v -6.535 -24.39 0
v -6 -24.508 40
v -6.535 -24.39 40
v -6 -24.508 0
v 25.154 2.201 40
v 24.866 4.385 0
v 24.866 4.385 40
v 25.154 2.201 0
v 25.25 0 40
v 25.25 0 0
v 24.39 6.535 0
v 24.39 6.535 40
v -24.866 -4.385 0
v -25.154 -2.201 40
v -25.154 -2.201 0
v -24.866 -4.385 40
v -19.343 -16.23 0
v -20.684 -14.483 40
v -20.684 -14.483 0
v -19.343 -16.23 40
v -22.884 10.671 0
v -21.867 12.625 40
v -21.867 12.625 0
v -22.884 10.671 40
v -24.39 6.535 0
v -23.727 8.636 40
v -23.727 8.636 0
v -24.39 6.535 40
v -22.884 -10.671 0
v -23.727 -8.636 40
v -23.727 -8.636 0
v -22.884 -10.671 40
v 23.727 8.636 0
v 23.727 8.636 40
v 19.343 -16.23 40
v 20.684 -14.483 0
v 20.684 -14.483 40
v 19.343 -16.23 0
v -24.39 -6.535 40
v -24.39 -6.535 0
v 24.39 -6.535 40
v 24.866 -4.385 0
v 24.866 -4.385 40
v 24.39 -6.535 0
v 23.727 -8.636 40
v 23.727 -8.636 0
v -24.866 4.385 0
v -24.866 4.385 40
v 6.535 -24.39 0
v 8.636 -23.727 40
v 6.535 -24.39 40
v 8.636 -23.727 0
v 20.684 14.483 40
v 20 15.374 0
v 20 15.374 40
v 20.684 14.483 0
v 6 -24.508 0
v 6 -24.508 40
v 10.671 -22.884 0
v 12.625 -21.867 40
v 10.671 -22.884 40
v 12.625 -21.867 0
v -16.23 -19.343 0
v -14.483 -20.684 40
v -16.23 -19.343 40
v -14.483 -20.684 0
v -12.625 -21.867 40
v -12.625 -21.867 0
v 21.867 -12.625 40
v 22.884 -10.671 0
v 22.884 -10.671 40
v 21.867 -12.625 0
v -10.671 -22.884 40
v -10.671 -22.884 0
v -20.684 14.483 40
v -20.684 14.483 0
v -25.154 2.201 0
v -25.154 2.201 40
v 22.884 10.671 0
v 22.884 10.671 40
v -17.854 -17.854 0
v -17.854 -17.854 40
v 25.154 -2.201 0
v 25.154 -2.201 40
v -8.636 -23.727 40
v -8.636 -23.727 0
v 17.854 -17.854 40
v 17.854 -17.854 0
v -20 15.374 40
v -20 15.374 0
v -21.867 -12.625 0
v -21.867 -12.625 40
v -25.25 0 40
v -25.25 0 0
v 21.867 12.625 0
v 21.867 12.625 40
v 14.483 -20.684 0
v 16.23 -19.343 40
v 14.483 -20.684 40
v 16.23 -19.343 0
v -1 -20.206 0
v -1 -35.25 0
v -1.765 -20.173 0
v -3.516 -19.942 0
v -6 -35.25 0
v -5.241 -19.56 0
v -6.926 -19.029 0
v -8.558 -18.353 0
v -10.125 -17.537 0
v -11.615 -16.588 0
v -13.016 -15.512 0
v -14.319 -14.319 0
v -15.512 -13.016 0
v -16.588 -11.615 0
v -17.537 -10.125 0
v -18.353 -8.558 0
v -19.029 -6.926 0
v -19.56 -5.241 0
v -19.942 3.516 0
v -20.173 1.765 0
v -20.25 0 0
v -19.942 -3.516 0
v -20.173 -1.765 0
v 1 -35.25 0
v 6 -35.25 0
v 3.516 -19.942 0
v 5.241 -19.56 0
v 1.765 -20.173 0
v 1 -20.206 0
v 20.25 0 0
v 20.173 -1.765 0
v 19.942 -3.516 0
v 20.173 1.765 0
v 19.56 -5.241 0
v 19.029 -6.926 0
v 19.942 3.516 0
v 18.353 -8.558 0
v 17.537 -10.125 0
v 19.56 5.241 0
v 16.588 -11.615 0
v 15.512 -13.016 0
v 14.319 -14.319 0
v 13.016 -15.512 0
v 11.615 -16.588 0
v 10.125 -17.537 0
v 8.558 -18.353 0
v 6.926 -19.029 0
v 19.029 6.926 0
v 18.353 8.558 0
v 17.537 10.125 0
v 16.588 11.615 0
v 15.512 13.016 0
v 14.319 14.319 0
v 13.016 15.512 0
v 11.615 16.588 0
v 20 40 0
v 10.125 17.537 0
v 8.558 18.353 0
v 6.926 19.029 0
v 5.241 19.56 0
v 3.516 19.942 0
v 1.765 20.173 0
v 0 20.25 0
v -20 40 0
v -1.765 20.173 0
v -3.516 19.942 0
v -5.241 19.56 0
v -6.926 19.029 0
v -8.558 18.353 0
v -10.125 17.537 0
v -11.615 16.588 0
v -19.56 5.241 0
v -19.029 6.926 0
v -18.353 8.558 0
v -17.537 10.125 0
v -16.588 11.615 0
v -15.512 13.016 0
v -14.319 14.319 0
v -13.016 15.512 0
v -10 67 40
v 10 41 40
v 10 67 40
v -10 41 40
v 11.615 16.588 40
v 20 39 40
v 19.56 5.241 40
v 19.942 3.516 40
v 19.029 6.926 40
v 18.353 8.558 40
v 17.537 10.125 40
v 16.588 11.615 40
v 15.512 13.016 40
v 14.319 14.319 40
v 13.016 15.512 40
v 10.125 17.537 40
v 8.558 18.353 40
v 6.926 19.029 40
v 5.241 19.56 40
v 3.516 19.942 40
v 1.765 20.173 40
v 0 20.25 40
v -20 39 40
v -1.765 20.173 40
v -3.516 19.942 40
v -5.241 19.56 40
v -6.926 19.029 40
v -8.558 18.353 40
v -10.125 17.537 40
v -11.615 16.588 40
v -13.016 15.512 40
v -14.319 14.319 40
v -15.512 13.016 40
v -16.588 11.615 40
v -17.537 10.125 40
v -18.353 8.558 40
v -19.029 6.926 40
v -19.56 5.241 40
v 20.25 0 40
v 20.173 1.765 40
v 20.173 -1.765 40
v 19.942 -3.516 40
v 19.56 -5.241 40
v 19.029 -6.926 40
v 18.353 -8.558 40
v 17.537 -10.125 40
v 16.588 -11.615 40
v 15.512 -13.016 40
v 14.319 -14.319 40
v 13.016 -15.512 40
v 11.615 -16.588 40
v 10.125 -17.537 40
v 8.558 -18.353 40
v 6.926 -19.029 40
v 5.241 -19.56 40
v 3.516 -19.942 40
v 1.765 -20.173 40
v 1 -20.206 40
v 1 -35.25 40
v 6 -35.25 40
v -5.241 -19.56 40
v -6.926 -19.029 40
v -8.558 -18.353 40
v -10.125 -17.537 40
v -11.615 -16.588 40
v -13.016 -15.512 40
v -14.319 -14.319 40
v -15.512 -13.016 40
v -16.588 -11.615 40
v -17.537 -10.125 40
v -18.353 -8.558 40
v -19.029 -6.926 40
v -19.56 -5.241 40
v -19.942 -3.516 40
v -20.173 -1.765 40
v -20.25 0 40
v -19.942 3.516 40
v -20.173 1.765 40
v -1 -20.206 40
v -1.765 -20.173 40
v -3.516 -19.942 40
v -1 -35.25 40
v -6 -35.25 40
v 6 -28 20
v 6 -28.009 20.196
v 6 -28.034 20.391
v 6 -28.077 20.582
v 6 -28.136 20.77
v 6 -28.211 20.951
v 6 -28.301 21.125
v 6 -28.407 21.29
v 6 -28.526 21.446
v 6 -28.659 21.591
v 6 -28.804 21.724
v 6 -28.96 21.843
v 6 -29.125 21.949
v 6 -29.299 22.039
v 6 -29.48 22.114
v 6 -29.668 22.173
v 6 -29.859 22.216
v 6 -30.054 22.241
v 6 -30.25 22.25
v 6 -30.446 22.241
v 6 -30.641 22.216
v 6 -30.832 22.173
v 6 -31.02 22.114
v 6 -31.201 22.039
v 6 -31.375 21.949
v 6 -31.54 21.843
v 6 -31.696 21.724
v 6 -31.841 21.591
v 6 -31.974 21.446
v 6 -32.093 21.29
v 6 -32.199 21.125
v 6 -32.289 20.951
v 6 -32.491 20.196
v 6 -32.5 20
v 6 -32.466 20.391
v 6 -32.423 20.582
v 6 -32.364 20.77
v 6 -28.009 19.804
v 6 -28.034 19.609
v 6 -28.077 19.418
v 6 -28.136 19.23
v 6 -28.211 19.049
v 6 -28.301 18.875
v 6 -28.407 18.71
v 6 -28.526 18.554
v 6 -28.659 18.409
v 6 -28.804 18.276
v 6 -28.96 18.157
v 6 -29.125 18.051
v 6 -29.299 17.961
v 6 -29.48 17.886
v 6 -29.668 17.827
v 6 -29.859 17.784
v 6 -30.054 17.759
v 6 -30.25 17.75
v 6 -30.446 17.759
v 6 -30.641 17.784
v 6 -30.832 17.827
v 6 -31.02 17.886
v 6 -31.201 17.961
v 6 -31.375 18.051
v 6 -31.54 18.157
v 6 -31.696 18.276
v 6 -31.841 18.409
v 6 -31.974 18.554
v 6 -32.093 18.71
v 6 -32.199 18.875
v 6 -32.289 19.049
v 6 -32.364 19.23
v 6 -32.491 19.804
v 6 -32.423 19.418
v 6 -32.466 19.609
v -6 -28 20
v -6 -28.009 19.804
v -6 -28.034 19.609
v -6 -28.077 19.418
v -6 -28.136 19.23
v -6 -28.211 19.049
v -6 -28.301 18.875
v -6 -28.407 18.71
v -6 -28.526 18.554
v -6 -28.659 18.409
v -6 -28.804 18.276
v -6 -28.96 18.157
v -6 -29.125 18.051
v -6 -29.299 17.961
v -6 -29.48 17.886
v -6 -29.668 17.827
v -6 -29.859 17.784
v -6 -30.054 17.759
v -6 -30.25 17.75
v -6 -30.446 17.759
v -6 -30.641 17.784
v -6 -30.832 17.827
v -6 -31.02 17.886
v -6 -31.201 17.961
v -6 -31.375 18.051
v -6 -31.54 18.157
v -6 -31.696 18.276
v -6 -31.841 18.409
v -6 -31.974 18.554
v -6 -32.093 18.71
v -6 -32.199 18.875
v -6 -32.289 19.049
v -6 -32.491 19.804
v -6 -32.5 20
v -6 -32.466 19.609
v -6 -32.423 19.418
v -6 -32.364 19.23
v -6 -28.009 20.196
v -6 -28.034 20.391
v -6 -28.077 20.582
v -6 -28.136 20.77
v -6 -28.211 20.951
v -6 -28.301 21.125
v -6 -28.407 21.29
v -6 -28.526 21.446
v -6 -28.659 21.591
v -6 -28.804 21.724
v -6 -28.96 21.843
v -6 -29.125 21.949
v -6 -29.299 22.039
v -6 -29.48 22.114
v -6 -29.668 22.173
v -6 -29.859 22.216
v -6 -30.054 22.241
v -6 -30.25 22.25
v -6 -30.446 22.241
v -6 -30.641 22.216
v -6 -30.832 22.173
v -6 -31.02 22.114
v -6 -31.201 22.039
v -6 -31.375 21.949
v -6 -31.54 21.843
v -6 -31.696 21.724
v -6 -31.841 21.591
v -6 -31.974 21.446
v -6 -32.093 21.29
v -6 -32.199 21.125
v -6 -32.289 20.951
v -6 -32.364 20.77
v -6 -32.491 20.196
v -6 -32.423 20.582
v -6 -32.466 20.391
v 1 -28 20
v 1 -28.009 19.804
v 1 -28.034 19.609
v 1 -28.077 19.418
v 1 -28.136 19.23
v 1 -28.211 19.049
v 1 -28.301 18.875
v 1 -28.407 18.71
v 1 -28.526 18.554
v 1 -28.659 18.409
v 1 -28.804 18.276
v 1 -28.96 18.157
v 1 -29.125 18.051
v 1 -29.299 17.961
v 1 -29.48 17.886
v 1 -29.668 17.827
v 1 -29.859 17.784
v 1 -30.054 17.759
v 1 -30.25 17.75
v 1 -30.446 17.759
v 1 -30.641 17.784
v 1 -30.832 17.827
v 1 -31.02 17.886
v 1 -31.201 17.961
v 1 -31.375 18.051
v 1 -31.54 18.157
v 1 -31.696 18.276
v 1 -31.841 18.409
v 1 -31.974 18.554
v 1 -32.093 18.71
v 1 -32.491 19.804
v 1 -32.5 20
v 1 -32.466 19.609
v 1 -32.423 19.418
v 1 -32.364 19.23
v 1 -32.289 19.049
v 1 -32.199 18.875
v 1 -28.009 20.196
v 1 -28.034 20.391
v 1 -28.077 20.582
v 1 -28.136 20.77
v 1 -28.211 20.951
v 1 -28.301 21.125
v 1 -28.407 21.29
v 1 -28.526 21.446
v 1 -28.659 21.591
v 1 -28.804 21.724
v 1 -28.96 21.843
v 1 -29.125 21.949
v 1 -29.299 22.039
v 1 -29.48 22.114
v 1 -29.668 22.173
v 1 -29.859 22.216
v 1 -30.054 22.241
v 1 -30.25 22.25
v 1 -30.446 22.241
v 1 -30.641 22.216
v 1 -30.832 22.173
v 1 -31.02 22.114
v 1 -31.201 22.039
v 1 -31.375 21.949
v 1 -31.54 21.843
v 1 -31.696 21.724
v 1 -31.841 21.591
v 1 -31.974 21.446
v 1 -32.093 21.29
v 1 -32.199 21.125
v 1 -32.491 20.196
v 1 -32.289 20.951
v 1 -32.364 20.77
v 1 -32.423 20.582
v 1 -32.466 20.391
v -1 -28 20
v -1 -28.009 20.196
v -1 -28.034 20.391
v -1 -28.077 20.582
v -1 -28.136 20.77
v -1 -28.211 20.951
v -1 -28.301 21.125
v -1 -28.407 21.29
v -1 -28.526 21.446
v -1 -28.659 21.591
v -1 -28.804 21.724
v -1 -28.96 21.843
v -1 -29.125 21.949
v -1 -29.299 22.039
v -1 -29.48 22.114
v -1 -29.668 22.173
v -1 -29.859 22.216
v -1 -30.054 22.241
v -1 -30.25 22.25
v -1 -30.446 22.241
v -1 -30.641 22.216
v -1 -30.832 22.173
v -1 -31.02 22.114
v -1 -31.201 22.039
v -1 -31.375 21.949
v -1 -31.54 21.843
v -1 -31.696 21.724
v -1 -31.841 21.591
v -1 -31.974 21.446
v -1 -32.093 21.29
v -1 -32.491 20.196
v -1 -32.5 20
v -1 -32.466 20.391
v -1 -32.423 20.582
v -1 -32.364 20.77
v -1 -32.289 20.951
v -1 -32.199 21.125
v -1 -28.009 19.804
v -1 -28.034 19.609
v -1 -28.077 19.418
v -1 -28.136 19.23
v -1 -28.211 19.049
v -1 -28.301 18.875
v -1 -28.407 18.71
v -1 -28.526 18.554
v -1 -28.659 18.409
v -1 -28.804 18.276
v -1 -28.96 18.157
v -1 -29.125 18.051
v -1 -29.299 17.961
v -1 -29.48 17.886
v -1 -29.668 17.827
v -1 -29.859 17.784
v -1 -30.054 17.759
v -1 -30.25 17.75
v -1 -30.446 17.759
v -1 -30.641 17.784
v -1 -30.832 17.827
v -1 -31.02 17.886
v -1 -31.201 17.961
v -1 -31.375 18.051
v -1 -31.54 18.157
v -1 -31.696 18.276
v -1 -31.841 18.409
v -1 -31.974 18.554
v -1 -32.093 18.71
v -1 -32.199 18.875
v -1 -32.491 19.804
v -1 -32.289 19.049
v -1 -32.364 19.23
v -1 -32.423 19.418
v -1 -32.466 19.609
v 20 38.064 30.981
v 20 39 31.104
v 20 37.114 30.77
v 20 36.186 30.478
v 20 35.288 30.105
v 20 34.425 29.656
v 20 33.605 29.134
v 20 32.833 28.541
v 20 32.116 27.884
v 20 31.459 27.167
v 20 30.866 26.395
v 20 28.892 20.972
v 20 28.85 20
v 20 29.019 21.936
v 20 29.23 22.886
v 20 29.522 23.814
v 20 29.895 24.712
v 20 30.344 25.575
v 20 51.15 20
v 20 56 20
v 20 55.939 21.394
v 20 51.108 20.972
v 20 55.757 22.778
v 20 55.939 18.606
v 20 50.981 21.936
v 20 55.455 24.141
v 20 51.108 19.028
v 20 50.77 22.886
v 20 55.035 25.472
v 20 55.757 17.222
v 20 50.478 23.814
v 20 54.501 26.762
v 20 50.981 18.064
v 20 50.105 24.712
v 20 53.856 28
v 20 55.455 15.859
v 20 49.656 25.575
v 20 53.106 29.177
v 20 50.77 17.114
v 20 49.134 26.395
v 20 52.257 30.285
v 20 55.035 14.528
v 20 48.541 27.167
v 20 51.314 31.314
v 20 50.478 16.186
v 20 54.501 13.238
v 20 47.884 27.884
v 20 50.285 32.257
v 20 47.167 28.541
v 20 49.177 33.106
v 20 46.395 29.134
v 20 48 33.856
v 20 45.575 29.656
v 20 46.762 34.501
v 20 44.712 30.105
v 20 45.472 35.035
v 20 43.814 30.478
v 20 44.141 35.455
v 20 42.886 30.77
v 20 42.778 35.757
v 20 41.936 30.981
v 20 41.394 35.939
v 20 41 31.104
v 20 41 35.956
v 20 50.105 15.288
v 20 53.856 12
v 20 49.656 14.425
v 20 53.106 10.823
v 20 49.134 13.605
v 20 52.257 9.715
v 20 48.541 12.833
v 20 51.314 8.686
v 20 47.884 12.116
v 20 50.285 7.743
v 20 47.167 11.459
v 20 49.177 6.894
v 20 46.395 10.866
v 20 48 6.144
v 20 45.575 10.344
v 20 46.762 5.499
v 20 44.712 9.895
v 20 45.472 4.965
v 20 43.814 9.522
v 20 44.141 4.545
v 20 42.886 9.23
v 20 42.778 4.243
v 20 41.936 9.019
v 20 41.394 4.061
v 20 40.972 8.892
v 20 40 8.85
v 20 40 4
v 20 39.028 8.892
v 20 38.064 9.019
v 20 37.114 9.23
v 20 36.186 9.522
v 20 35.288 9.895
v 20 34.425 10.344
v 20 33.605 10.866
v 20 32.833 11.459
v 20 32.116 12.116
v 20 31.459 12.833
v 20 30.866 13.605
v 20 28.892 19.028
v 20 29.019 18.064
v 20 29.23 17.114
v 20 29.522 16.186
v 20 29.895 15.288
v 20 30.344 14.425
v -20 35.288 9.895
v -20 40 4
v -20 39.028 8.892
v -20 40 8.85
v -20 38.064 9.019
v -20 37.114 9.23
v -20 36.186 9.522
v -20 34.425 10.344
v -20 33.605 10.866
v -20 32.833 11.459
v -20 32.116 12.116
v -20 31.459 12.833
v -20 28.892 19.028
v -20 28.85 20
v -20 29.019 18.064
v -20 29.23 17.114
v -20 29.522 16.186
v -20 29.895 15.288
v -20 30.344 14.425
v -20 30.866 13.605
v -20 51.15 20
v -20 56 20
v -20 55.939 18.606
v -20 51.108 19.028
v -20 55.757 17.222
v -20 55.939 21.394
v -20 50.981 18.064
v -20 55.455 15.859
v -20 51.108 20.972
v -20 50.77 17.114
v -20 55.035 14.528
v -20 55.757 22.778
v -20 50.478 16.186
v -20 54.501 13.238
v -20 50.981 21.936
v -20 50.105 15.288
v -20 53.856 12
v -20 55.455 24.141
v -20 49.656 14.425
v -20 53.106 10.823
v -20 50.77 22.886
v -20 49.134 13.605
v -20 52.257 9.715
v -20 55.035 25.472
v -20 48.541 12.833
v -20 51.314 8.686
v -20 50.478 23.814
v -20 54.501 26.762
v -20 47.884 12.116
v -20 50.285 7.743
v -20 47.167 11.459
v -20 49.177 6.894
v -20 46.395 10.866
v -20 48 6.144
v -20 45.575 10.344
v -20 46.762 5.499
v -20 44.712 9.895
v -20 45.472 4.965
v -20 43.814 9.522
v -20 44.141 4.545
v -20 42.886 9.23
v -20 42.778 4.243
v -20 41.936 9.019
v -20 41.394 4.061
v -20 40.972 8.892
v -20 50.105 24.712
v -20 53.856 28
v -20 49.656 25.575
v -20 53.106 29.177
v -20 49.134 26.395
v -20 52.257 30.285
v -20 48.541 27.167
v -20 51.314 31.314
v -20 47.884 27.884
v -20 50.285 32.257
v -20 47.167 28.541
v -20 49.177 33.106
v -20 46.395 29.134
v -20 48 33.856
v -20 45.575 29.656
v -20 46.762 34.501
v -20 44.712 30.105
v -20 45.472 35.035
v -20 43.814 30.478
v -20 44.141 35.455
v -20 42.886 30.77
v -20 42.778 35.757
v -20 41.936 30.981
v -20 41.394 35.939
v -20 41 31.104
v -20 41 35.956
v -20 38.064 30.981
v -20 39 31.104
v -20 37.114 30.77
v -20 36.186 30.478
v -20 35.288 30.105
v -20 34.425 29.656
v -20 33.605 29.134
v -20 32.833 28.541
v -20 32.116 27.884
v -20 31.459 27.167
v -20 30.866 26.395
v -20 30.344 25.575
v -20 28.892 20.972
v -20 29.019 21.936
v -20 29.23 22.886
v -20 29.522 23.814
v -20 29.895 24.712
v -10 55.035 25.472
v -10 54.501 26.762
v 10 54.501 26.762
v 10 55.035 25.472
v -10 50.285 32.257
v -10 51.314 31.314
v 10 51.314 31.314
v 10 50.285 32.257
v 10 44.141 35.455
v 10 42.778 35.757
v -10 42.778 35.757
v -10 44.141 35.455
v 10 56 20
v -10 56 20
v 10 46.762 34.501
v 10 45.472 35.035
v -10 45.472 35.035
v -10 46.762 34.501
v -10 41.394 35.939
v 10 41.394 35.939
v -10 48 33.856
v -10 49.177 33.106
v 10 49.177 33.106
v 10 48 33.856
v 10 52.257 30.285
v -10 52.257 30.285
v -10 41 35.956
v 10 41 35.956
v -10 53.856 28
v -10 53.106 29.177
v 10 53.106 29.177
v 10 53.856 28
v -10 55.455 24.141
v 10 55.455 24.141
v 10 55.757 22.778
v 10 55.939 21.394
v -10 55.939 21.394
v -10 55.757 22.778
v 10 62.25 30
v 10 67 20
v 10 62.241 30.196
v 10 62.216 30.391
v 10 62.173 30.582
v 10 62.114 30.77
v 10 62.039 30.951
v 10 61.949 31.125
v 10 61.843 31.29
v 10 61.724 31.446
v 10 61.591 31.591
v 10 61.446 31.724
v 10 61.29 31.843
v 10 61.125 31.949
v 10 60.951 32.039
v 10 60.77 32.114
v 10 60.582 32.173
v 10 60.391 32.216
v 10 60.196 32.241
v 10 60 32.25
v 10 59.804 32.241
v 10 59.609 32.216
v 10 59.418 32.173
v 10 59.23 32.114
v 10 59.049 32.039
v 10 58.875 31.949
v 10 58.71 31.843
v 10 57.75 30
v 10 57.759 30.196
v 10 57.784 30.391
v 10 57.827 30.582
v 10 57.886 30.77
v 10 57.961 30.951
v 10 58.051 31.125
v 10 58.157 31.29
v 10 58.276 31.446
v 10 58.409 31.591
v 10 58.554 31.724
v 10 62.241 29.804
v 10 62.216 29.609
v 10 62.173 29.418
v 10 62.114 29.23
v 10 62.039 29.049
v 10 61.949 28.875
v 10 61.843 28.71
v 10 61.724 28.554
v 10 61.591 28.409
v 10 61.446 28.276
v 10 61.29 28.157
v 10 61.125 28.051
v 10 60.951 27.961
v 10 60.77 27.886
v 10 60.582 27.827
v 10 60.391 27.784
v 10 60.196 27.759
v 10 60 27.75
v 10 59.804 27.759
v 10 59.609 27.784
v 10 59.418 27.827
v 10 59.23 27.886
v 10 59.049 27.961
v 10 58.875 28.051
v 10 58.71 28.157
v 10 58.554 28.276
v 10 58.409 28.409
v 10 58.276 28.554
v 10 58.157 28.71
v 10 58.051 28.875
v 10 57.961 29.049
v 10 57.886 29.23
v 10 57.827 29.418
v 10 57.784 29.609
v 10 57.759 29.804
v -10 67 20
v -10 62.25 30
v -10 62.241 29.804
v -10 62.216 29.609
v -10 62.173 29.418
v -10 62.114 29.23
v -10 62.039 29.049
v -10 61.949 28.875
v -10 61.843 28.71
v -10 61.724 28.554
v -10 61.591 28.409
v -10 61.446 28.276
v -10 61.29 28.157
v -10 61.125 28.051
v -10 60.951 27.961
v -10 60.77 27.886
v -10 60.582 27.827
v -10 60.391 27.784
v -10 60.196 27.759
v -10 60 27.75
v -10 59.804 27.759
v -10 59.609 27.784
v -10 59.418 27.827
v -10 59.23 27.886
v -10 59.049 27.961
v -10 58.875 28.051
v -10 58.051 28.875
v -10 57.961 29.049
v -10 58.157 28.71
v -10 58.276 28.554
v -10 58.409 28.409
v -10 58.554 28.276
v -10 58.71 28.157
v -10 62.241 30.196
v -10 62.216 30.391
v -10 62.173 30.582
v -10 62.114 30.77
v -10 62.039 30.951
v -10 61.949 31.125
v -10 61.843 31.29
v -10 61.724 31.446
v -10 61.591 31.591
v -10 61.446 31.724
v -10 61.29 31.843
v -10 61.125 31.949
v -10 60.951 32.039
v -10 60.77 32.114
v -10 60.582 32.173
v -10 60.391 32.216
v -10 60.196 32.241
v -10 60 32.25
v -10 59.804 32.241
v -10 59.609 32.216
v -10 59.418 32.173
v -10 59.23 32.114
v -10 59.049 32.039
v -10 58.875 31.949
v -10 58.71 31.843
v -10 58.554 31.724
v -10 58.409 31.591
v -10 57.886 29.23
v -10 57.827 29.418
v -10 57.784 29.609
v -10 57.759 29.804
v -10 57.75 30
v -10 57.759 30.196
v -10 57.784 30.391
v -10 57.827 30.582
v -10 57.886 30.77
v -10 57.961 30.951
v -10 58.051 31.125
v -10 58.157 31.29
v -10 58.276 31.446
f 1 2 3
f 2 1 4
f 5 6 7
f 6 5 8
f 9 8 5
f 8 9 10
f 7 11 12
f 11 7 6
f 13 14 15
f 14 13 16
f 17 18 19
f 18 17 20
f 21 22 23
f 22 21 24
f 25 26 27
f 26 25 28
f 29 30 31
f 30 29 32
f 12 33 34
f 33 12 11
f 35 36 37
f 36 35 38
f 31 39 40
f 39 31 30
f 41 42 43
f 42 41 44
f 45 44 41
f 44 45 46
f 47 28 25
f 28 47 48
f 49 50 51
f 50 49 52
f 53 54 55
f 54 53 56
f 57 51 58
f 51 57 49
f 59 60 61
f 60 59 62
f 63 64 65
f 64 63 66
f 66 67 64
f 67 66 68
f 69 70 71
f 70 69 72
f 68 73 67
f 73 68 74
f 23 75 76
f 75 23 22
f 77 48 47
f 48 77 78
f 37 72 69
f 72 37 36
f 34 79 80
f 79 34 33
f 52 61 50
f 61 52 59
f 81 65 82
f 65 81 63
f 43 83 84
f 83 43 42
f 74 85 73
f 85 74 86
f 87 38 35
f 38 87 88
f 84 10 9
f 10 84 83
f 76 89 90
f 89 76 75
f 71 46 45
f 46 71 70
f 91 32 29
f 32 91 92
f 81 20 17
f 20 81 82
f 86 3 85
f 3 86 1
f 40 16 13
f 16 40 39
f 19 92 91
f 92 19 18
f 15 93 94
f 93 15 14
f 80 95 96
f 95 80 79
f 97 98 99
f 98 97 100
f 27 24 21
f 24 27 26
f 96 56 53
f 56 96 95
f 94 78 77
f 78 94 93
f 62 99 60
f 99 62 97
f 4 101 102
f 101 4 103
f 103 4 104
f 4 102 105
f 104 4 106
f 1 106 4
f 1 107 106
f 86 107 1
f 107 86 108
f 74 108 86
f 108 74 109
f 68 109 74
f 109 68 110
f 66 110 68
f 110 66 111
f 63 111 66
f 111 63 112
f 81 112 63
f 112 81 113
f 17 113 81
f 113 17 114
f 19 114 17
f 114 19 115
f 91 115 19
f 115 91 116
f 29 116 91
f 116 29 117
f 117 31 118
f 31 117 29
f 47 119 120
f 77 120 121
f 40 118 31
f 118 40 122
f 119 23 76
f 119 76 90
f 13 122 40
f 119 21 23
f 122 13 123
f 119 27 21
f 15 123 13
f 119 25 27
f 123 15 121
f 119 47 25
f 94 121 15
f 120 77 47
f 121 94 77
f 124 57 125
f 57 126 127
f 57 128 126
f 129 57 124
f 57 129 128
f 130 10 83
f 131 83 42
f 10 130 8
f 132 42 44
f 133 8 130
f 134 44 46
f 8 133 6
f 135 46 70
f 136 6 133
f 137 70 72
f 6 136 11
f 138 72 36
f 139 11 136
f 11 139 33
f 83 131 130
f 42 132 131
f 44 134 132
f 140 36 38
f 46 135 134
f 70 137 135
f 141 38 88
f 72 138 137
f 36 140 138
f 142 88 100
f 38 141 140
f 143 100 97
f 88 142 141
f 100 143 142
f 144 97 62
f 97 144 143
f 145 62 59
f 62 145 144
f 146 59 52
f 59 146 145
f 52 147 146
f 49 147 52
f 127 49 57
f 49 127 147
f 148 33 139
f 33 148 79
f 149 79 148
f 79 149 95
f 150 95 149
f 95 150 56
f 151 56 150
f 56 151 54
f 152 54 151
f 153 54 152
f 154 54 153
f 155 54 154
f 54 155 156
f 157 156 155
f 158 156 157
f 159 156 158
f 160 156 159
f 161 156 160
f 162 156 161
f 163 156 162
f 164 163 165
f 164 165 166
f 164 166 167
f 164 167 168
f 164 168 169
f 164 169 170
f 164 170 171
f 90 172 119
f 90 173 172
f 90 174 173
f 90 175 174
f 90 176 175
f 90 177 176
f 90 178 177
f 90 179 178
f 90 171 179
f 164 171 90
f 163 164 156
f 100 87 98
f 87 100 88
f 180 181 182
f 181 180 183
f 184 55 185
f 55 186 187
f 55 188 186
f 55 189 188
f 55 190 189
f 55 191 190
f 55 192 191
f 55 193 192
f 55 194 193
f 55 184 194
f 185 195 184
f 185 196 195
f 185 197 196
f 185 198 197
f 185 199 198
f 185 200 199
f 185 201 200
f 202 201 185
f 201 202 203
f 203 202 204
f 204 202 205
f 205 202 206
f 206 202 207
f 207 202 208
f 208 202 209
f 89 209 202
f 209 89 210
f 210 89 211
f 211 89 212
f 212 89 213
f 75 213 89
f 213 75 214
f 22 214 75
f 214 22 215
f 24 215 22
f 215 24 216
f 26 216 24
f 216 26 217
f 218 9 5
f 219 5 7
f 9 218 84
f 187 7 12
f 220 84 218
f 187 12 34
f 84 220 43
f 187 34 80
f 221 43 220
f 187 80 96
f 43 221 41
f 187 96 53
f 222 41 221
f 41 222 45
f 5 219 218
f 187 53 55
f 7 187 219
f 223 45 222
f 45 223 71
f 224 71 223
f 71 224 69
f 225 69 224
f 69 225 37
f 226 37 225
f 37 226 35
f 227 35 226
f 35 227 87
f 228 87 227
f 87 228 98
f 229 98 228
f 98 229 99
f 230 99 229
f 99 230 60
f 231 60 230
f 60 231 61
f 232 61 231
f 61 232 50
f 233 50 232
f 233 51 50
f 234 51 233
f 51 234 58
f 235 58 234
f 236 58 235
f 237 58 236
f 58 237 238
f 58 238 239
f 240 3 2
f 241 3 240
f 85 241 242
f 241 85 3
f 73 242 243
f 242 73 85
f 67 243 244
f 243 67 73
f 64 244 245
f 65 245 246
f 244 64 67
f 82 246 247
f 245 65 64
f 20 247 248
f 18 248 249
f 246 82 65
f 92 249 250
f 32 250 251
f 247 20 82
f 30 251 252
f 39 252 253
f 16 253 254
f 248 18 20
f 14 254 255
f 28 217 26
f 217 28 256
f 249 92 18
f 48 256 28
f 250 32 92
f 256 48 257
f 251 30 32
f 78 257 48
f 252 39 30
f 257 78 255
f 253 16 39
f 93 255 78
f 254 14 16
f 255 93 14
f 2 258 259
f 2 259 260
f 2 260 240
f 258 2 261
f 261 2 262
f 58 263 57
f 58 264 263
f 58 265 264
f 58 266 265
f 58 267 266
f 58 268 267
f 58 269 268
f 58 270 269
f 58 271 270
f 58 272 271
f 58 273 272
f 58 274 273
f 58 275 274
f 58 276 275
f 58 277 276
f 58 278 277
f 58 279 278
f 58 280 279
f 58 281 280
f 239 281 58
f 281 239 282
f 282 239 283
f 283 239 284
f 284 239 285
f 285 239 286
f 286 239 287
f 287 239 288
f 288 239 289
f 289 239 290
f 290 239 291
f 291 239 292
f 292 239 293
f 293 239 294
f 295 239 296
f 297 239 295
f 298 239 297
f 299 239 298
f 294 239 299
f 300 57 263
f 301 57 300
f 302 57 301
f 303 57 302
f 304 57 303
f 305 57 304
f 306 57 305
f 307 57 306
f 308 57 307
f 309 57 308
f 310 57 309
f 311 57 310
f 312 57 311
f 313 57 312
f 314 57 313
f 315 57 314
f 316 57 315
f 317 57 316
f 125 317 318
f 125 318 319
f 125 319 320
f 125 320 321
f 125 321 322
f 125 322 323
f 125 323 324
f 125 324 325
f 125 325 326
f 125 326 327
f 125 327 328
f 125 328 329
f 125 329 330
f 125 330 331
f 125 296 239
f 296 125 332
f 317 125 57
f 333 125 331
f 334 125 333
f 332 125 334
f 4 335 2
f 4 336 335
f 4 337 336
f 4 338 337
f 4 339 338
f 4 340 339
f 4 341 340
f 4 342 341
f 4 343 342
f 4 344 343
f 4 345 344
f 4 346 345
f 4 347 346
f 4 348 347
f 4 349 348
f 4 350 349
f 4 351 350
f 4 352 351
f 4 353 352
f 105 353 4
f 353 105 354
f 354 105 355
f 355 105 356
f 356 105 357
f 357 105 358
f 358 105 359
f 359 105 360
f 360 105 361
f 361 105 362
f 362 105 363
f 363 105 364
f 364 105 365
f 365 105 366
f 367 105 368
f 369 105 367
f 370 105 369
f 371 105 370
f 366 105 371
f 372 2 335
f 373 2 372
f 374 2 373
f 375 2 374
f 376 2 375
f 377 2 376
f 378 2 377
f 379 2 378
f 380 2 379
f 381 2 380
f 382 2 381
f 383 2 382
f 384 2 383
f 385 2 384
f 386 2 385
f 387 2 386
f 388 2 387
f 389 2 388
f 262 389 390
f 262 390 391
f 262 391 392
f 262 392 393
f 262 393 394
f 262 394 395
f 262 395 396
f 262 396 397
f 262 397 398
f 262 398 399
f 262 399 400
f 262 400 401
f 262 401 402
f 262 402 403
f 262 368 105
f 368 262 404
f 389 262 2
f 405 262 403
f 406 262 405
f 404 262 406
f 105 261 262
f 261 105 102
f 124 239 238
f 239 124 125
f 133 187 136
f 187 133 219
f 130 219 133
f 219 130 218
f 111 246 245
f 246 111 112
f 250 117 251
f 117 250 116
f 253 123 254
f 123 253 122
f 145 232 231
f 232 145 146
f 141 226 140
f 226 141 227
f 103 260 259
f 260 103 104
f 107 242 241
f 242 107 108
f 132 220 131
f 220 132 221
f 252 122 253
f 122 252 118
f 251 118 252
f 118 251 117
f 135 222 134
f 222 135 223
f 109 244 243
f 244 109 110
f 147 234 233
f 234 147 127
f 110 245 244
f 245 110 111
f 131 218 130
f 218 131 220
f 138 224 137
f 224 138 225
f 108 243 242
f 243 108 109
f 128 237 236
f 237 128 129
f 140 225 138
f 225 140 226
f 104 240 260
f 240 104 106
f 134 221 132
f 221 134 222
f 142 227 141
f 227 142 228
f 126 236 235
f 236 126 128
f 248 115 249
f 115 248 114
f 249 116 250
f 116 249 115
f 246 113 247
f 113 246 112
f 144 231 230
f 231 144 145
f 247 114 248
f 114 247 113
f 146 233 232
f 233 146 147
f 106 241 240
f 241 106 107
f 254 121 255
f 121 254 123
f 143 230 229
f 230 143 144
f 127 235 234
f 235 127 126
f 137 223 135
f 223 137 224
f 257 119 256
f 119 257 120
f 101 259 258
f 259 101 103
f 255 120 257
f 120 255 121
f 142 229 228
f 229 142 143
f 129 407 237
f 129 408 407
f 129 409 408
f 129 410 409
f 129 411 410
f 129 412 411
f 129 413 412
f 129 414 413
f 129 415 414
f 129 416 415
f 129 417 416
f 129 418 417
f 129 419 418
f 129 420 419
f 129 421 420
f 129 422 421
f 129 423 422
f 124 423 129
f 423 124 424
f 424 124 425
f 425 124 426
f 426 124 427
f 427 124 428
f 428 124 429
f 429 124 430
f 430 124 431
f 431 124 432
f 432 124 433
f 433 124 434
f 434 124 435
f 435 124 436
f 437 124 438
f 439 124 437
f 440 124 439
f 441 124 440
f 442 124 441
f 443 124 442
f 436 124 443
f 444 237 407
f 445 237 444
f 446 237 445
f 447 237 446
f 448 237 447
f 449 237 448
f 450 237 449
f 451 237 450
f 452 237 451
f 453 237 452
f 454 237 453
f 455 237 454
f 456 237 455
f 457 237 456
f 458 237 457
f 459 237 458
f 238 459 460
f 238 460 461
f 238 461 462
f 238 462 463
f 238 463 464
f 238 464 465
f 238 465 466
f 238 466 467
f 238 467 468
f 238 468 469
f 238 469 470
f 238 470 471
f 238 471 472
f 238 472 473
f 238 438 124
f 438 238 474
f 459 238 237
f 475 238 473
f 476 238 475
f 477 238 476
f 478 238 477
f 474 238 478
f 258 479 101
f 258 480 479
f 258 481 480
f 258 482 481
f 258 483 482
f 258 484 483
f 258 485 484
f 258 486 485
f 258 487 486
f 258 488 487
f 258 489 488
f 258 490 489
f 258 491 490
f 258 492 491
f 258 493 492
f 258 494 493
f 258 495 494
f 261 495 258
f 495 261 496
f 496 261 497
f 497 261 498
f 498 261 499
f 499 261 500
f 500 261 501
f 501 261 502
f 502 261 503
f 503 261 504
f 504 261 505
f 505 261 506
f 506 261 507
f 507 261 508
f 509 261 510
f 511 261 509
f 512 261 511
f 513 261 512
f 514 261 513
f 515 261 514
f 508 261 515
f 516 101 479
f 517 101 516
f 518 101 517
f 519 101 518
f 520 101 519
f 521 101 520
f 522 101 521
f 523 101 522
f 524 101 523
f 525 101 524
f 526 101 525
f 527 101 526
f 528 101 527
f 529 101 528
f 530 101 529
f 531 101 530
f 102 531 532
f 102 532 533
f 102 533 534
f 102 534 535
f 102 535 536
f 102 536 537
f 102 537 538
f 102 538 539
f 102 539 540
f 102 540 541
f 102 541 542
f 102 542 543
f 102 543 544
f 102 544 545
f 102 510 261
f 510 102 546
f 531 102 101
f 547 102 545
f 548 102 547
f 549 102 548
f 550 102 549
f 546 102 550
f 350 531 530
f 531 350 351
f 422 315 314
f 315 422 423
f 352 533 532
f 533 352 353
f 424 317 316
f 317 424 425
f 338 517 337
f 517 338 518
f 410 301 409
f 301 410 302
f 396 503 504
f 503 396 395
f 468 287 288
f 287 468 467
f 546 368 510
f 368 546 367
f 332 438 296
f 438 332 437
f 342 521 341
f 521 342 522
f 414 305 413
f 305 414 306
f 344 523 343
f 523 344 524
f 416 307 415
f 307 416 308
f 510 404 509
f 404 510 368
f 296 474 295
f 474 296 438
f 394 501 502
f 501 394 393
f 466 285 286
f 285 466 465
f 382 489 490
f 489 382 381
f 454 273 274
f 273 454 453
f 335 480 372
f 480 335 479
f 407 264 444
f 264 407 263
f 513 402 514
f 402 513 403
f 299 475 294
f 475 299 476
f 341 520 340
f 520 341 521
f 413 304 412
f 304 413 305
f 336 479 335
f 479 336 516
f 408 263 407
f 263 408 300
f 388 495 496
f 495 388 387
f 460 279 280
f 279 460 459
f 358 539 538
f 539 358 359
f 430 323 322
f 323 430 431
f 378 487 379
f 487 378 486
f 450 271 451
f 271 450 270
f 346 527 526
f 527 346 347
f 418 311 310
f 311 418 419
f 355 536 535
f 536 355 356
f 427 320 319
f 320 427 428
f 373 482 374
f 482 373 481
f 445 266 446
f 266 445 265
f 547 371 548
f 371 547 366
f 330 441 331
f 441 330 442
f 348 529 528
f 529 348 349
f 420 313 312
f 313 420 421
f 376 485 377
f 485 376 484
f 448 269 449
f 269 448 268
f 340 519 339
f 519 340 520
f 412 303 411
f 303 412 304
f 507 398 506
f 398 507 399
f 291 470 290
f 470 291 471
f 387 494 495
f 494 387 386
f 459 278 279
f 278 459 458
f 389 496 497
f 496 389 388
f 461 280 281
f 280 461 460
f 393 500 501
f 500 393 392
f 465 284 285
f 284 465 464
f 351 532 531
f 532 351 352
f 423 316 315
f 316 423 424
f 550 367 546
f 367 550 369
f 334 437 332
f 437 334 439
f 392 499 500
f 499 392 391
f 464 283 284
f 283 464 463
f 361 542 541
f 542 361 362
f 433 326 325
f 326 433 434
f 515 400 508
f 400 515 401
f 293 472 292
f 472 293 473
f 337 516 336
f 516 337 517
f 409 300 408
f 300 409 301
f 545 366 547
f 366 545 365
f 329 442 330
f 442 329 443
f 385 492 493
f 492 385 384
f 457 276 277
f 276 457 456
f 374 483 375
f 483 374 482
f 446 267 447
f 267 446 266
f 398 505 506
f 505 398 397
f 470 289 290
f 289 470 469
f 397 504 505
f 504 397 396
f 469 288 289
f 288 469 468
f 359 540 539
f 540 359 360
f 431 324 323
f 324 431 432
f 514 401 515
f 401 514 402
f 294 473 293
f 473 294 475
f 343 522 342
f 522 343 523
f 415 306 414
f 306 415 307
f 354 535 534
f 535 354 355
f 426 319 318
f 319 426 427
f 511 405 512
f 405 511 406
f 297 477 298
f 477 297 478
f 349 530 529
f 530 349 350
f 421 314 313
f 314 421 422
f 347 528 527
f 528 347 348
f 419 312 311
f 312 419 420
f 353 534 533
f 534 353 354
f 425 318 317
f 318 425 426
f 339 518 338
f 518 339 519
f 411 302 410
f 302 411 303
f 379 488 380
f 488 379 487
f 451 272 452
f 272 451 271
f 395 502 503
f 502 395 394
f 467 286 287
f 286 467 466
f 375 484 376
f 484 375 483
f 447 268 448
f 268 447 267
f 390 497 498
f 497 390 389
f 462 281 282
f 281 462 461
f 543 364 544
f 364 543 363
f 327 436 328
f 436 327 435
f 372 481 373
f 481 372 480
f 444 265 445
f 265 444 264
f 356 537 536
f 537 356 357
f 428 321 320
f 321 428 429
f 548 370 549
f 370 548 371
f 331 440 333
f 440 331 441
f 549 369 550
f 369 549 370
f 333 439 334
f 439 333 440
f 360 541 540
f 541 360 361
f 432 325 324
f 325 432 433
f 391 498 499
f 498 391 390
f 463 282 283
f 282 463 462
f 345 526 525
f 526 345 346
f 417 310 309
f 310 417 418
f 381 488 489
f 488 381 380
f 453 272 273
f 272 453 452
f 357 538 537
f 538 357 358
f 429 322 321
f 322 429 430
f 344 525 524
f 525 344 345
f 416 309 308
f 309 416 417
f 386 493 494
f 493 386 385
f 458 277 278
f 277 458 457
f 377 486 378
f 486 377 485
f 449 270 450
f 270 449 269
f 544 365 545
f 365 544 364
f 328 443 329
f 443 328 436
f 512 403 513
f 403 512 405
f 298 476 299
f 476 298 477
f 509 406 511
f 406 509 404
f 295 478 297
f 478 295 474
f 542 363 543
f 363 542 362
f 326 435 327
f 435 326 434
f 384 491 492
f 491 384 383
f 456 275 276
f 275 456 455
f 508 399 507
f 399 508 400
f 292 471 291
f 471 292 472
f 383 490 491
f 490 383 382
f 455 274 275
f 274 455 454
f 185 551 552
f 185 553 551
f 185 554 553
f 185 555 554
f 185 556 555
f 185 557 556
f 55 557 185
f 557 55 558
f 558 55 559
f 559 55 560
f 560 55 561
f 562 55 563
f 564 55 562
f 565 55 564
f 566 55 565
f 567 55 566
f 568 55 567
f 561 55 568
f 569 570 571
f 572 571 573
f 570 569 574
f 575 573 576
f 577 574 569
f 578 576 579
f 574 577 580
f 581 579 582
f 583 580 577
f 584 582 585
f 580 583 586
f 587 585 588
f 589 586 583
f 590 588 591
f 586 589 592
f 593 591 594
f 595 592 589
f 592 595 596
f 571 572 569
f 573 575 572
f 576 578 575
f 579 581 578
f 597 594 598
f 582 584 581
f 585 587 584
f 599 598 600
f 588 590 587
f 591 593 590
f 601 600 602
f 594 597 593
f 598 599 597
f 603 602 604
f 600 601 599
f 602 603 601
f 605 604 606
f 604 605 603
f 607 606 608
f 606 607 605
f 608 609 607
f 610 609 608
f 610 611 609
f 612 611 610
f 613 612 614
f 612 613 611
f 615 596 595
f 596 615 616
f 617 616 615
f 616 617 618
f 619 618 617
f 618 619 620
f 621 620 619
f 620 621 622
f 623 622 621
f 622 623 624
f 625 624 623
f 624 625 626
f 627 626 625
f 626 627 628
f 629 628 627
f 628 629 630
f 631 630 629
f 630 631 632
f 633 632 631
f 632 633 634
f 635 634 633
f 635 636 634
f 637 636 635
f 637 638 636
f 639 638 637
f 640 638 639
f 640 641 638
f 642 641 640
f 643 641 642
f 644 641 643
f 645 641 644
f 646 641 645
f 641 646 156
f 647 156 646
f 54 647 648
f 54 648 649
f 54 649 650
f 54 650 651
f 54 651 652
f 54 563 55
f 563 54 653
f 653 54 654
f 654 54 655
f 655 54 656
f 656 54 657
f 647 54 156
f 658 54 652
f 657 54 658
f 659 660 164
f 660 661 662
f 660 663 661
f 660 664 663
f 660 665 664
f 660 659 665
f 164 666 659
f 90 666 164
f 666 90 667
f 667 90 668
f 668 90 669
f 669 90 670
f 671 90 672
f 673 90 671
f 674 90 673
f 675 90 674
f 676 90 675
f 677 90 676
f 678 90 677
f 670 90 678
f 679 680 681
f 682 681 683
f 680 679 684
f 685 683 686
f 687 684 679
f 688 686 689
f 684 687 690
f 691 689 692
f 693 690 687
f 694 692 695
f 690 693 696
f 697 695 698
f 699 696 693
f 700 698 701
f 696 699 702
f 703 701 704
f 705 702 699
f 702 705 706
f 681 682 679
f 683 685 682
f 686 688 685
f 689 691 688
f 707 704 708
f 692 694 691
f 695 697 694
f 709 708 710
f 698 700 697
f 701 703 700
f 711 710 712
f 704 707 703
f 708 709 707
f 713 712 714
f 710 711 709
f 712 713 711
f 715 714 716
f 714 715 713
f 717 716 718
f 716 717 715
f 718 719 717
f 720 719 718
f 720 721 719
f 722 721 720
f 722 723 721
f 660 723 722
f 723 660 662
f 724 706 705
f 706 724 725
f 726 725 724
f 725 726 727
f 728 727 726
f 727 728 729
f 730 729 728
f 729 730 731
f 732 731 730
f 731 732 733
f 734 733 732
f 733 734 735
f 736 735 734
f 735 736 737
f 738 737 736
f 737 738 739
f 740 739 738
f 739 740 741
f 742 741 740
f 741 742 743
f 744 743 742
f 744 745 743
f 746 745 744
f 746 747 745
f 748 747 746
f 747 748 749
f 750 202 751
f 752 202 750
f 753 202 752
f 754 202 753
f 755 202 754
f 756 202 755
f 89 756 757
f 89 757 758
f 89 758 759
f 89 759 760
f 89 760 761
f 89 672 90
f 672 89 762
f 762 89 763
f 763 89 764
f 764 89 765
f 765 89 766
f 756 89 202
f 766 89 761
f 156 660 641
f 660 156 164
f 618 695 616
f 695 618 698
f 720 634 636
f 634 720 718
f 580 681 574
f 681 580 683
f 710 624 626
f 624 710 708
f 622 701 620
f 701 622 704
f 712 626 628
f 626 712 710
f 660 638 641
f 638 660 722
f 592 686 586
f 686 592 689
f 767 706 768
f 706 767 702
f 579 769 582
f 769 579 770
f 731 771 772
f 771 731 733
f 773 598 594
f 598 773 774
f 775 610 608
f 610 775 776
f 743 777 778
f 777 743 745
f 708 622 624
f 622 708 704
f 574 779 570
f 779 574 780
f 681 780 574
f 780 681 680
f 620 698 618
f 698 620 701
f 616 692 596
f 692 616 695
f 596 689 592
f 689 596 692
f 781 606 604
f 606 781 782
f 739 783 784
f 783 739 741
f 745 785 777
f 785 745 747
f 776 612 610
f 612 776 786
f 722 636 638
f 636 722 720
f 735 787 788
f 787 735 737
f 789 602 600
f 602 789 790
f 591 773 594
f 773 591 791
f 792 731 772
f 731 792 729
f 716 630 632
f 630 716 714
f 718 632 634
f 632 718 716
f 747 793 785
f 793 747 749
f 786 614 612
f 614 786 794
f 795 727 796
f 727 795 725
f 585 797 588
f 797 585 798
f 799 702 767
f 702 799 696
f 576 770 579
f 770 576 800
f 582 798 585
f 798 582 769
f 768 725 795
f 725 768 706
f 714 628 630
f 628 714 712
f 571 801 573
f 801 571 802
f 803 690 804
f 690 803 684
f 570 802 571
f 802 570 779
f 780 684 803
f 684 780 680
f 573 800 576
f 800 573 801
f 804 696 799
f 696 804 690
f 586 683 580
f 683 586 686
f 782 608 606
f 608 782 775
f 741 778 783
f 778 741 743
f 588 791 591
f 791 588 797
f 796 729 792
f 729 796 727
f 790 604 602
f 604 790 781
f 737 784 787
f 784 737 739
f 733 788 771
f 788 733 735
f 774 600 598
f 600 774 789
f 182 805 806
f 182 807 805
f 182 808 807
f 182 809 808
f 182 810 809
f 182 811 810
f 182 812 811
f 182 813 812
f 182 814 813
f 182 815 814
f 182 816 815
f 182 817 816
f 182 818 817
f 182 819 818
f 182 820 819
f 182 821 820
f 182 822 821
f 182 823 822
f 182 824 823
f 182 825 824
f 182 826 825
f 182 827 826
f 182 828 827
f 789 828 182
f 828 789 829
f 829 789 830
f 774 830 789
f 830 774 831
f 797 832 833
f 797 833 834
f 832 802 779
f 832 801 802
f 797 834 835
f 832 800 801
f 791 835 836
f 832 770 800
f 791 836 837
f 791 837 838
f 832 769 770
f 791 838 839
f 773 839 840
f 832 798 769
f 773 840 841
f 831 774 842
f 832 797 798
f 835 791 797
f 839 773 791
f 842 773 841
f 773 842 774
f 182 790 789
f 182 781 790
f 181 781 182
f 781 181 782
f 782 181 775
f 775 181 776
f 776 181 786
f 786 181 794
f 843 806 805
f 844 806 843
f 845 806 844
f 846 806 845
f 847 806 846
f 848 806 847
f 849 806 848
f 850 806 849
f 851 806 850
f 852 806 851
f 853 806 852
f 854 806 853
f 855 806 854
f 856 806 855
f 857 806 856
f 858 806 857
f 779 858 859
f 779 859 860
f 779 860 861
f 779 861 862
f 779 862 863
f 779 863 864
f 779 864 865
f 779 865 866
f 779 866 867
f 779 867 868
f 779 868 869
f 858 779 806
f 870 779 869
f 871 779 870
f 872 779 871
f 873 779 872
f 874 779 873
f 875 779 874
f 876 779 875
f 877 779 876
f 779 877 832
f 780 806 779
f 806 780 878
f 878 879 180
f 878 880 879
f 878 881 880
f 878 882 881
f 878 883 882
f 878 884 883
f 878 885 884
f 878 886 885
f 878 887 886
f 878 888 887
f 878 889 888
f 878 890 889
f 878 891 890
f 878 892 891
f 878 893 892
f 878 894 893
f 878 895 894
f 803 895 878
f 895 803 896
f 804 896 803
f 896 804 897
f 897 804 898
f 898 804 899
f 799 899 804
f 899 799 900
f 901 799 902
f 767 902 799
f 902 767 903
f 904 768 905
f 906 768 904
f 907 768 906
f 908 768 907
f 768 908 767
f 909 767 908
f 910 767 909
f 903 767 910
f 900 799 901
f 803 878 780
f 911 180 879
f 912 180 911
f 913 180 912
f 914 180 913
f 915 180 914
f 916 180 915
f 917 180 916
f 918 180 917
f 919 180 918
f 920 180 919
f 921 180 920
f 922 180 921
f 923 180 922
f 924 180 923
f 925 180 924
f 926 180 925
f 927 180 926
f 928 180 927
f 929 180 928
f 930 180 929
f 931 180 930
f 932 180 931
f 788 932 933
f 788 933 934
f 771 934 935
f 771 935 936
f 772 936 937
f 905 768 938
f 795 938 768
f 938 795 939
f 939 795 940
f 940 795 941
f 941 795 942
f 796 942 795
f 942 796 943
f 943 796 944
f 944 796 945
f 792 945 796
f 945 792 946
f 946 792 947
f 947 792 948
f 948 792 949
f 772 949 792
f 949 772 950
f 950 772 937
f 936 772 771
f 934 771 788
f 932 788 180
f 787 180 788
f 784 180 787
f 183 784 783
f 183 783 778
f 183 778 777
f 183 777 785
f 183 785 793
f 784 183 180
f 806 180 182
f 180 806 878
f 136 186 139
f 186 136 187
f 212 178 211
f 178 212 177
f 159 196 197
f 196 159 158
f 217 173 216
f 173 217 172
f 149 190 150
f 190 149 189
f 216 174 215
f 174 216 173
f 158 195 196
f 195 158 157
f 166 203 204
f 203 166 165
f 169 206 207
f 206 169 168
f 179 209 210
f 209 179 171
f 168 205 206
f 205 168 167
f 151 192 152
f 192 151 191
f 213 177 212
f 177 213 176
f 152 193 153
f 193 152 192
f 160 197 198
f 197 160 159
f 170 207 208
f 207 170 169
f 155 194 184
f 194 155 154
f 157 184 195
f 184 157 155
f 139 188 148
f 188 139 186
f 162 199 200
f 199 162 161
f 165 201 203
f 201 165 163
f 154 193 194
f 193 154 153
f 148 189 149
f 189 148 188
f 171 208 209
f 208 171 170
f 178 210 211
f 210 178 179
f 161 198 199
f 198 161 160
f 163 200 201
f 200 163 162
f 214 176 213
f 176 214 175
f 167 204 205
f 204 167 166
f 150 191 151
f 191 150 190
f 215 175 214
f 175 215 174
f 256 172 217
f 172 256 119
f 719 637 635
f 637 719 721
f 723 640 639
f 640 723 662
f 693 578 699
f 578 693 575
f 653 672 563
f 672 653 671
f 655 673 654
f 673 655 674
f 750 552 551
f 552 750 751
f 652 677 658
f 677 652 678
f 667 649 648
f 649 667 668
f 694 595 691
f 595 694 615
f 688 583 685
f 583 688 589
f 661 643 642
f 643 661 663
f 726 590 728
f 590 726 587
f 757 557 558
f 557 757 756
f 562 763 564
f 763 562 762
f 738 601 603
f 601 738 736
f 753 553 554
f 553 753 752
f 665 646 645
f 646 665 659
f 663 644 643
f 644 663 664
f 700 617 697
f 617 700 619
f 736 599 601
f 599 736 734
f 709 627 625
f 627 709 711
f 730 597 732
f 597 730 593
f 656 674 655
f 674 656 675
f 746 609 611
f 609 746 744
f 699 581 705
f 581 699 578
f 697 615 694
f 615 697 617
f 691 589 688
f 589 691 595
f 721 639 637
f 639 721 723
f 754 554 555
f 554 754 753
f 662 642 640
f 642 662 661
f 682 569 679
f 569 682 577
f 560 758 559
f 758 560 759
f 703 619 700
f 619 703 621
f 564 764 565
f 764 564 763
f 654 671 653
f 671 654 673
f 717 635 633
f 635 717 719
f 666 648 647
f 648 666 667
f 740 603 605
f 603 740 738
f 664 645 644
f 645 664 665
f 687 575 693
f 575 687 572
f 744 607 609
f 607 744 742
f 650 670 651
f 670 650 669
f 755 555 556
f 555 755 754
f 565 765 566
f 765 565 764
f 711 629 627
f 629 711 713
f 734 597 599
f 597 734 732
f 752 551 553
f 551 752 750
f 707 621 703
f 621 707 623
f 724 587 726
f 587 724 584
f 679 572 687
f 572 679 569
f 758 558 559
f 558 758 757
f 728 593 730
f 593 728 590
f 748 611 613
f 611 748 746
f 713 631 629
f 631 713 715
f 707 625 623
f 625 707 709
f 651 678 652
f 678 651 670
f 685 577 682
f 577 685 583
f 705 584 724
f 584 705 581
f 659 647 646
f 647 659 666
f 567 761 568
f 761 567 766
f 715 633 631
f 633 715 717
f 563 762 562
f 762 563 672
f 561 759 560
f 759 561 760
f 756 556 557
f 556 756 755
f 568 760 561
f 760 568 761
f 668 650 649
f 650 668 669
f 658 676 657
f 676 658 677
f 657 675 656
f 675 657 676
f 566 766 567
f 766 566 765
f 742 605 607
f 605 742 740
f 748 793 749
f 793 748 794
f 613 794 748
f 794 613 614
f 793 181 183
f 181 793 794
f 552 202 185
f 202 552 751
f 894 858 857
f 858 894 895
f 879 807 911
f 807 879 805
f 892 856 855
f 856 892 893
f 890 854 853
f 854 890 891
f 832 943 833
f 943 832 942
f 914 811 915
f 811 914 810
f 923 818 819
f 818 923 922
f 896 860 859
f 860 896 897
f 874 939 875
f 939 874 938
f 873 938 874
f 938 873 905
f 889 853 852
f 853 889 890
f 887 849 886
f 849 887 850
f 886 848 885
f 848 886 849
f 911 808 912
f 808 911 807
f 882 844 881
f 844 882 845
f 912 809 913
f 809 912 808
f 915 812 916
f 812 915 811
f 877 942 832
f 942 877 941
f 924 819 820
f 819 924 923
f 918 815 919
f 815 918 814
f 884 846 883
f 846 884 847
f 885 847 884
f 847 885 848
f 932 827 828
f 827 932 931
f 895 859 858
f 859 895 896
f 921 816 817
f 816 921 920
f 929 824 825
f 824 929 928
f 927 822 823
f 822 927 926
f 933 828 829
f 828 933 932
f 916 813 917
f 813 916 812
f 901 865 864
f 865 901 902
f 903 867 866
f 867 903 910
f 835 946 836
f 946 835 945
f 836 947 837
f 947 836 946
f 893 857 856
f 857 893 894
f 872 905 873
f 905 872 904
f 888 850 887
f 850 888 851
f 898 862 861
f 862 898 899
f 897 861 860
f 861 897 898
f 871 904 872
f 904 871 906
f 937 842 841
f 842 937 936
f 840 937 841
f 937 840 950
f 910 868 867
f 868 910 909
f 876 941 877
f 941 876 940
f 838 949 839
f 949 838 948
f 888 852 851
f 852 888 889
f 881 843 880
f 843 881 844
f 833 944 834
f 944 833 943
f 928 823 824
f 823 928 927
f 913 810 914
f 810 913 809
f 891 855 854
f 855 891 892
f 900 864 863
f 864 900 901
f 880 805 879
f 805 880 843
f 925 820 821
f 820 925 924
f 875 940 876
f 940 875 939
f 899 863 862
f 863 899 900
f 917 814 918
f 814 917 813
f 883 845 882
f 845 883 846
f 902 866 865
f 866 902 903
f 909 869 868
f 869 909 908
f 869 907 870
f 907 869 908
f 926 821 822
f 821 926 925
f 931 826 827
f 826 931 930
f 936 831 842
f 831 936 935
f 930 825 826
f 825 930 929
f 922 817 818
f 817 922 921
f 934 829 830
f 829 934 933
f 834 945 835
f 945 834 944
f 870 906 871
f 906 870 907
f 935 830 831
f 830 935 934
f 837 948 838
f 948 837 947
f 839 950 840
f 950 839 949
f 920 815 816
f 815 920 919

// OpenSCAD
// file: comun.scad
// Utilidades comunes
$fn = 72;
module rrect(w, h, r, t) { linear_extrude(t) offset(r) square([w - 2*r, h - 2*r], center = true); }
// Collar partido con oreja y tornillo de apriete (eje Z). d = diámetro interior
module collar(d, h, pared = 5, oreja = 12, tornillo = 4.5) {
  difference() {
    union() {
      cylinder(d = d + 2*pared, h = h);
      translate([-oreja/2, -(d/2 + pared + oreja - 2), 0]) cube([oreja, oreja + 2, h]);
    }
    translate([0, 0, -1]) cylinder(d = d, h = h + 2);
    translate([-1, -(d/2 + pared + oreja + 1), -1]) cube([2, pared + oreja + 2, h + 2]);   // ranura
    translate([-oreja, -(d/2 + pared + oreja/2 - 1), h/2]) rotate([0, 90, 0]) cylinder(d = tornillo, h = 2*oreja); // tornillo
  }
}
module collar_hueco(d, h, pared = 5) { translate([0, 0, -1]) cylinder(d = d, h = h + 2); }
// file: parametros.scad
// GENERADO por cad/generar_3d.py (versión B). No editar a mano.
r_varillas = 92.0;
ang_varillas = 30;
r_rotor = 82.0;
r_stator_ext = 102.0;
gap = 4;
separador = 9;
juegos = 22;
longitud_pack = 190;
d_eje = 5;
d_eje_motor = 8;
rodamiento_d = 16.2;
rodamiento_h = 5.2;
altura_eje = 75;
d_mastil = 40;
d_tubo = 22;
separacion_loop = 40;
// main file
// CRUCETA: sujeta el tubo de cobre del loop (Ø22) al mástil (Ø40). Imprimir 2.
// El plano del loop queda desplazado 'separacion_loop' mm del eje del mástil.
include <parametros.scad>
include <comun.scad>
h = 40;
difference() {
  union() {
    collar(d_mastil + 0.5, h);
    translate([-h/2, 0, 0]) cube([h, separacion_loop, h]);                         // puente
    translate([0, separacion_loop, h/2]) rotate([0, 90, 0]) cylinder(d = d_tubo + 10, h = h, center = true);
    translate([-10, separacion_loop, h/2]) cube([20, d_tubo/2 + 16, h/2]);          // oreja tubo
  }
  translate([0, 0, -1]) cylinder(d = d_mastil + 0.5, h = h + 2);
  translate([0, separacion_loop, h/2]) rotate([0, 90, 0]) cylinder(d = d_tubo + 0.3, h = h + 2, center = true);
  translate([-h, separacion_loop - 1, h/2]) cube([2*h, 2, h]);                     // ranura del tubo
  translate([0, separacion_loop + d_tubo/2 + 9, h/2 + 10]) rotate([0, 90, 0]) cylinder(d = 4.5, h = 30, center = true);
}
